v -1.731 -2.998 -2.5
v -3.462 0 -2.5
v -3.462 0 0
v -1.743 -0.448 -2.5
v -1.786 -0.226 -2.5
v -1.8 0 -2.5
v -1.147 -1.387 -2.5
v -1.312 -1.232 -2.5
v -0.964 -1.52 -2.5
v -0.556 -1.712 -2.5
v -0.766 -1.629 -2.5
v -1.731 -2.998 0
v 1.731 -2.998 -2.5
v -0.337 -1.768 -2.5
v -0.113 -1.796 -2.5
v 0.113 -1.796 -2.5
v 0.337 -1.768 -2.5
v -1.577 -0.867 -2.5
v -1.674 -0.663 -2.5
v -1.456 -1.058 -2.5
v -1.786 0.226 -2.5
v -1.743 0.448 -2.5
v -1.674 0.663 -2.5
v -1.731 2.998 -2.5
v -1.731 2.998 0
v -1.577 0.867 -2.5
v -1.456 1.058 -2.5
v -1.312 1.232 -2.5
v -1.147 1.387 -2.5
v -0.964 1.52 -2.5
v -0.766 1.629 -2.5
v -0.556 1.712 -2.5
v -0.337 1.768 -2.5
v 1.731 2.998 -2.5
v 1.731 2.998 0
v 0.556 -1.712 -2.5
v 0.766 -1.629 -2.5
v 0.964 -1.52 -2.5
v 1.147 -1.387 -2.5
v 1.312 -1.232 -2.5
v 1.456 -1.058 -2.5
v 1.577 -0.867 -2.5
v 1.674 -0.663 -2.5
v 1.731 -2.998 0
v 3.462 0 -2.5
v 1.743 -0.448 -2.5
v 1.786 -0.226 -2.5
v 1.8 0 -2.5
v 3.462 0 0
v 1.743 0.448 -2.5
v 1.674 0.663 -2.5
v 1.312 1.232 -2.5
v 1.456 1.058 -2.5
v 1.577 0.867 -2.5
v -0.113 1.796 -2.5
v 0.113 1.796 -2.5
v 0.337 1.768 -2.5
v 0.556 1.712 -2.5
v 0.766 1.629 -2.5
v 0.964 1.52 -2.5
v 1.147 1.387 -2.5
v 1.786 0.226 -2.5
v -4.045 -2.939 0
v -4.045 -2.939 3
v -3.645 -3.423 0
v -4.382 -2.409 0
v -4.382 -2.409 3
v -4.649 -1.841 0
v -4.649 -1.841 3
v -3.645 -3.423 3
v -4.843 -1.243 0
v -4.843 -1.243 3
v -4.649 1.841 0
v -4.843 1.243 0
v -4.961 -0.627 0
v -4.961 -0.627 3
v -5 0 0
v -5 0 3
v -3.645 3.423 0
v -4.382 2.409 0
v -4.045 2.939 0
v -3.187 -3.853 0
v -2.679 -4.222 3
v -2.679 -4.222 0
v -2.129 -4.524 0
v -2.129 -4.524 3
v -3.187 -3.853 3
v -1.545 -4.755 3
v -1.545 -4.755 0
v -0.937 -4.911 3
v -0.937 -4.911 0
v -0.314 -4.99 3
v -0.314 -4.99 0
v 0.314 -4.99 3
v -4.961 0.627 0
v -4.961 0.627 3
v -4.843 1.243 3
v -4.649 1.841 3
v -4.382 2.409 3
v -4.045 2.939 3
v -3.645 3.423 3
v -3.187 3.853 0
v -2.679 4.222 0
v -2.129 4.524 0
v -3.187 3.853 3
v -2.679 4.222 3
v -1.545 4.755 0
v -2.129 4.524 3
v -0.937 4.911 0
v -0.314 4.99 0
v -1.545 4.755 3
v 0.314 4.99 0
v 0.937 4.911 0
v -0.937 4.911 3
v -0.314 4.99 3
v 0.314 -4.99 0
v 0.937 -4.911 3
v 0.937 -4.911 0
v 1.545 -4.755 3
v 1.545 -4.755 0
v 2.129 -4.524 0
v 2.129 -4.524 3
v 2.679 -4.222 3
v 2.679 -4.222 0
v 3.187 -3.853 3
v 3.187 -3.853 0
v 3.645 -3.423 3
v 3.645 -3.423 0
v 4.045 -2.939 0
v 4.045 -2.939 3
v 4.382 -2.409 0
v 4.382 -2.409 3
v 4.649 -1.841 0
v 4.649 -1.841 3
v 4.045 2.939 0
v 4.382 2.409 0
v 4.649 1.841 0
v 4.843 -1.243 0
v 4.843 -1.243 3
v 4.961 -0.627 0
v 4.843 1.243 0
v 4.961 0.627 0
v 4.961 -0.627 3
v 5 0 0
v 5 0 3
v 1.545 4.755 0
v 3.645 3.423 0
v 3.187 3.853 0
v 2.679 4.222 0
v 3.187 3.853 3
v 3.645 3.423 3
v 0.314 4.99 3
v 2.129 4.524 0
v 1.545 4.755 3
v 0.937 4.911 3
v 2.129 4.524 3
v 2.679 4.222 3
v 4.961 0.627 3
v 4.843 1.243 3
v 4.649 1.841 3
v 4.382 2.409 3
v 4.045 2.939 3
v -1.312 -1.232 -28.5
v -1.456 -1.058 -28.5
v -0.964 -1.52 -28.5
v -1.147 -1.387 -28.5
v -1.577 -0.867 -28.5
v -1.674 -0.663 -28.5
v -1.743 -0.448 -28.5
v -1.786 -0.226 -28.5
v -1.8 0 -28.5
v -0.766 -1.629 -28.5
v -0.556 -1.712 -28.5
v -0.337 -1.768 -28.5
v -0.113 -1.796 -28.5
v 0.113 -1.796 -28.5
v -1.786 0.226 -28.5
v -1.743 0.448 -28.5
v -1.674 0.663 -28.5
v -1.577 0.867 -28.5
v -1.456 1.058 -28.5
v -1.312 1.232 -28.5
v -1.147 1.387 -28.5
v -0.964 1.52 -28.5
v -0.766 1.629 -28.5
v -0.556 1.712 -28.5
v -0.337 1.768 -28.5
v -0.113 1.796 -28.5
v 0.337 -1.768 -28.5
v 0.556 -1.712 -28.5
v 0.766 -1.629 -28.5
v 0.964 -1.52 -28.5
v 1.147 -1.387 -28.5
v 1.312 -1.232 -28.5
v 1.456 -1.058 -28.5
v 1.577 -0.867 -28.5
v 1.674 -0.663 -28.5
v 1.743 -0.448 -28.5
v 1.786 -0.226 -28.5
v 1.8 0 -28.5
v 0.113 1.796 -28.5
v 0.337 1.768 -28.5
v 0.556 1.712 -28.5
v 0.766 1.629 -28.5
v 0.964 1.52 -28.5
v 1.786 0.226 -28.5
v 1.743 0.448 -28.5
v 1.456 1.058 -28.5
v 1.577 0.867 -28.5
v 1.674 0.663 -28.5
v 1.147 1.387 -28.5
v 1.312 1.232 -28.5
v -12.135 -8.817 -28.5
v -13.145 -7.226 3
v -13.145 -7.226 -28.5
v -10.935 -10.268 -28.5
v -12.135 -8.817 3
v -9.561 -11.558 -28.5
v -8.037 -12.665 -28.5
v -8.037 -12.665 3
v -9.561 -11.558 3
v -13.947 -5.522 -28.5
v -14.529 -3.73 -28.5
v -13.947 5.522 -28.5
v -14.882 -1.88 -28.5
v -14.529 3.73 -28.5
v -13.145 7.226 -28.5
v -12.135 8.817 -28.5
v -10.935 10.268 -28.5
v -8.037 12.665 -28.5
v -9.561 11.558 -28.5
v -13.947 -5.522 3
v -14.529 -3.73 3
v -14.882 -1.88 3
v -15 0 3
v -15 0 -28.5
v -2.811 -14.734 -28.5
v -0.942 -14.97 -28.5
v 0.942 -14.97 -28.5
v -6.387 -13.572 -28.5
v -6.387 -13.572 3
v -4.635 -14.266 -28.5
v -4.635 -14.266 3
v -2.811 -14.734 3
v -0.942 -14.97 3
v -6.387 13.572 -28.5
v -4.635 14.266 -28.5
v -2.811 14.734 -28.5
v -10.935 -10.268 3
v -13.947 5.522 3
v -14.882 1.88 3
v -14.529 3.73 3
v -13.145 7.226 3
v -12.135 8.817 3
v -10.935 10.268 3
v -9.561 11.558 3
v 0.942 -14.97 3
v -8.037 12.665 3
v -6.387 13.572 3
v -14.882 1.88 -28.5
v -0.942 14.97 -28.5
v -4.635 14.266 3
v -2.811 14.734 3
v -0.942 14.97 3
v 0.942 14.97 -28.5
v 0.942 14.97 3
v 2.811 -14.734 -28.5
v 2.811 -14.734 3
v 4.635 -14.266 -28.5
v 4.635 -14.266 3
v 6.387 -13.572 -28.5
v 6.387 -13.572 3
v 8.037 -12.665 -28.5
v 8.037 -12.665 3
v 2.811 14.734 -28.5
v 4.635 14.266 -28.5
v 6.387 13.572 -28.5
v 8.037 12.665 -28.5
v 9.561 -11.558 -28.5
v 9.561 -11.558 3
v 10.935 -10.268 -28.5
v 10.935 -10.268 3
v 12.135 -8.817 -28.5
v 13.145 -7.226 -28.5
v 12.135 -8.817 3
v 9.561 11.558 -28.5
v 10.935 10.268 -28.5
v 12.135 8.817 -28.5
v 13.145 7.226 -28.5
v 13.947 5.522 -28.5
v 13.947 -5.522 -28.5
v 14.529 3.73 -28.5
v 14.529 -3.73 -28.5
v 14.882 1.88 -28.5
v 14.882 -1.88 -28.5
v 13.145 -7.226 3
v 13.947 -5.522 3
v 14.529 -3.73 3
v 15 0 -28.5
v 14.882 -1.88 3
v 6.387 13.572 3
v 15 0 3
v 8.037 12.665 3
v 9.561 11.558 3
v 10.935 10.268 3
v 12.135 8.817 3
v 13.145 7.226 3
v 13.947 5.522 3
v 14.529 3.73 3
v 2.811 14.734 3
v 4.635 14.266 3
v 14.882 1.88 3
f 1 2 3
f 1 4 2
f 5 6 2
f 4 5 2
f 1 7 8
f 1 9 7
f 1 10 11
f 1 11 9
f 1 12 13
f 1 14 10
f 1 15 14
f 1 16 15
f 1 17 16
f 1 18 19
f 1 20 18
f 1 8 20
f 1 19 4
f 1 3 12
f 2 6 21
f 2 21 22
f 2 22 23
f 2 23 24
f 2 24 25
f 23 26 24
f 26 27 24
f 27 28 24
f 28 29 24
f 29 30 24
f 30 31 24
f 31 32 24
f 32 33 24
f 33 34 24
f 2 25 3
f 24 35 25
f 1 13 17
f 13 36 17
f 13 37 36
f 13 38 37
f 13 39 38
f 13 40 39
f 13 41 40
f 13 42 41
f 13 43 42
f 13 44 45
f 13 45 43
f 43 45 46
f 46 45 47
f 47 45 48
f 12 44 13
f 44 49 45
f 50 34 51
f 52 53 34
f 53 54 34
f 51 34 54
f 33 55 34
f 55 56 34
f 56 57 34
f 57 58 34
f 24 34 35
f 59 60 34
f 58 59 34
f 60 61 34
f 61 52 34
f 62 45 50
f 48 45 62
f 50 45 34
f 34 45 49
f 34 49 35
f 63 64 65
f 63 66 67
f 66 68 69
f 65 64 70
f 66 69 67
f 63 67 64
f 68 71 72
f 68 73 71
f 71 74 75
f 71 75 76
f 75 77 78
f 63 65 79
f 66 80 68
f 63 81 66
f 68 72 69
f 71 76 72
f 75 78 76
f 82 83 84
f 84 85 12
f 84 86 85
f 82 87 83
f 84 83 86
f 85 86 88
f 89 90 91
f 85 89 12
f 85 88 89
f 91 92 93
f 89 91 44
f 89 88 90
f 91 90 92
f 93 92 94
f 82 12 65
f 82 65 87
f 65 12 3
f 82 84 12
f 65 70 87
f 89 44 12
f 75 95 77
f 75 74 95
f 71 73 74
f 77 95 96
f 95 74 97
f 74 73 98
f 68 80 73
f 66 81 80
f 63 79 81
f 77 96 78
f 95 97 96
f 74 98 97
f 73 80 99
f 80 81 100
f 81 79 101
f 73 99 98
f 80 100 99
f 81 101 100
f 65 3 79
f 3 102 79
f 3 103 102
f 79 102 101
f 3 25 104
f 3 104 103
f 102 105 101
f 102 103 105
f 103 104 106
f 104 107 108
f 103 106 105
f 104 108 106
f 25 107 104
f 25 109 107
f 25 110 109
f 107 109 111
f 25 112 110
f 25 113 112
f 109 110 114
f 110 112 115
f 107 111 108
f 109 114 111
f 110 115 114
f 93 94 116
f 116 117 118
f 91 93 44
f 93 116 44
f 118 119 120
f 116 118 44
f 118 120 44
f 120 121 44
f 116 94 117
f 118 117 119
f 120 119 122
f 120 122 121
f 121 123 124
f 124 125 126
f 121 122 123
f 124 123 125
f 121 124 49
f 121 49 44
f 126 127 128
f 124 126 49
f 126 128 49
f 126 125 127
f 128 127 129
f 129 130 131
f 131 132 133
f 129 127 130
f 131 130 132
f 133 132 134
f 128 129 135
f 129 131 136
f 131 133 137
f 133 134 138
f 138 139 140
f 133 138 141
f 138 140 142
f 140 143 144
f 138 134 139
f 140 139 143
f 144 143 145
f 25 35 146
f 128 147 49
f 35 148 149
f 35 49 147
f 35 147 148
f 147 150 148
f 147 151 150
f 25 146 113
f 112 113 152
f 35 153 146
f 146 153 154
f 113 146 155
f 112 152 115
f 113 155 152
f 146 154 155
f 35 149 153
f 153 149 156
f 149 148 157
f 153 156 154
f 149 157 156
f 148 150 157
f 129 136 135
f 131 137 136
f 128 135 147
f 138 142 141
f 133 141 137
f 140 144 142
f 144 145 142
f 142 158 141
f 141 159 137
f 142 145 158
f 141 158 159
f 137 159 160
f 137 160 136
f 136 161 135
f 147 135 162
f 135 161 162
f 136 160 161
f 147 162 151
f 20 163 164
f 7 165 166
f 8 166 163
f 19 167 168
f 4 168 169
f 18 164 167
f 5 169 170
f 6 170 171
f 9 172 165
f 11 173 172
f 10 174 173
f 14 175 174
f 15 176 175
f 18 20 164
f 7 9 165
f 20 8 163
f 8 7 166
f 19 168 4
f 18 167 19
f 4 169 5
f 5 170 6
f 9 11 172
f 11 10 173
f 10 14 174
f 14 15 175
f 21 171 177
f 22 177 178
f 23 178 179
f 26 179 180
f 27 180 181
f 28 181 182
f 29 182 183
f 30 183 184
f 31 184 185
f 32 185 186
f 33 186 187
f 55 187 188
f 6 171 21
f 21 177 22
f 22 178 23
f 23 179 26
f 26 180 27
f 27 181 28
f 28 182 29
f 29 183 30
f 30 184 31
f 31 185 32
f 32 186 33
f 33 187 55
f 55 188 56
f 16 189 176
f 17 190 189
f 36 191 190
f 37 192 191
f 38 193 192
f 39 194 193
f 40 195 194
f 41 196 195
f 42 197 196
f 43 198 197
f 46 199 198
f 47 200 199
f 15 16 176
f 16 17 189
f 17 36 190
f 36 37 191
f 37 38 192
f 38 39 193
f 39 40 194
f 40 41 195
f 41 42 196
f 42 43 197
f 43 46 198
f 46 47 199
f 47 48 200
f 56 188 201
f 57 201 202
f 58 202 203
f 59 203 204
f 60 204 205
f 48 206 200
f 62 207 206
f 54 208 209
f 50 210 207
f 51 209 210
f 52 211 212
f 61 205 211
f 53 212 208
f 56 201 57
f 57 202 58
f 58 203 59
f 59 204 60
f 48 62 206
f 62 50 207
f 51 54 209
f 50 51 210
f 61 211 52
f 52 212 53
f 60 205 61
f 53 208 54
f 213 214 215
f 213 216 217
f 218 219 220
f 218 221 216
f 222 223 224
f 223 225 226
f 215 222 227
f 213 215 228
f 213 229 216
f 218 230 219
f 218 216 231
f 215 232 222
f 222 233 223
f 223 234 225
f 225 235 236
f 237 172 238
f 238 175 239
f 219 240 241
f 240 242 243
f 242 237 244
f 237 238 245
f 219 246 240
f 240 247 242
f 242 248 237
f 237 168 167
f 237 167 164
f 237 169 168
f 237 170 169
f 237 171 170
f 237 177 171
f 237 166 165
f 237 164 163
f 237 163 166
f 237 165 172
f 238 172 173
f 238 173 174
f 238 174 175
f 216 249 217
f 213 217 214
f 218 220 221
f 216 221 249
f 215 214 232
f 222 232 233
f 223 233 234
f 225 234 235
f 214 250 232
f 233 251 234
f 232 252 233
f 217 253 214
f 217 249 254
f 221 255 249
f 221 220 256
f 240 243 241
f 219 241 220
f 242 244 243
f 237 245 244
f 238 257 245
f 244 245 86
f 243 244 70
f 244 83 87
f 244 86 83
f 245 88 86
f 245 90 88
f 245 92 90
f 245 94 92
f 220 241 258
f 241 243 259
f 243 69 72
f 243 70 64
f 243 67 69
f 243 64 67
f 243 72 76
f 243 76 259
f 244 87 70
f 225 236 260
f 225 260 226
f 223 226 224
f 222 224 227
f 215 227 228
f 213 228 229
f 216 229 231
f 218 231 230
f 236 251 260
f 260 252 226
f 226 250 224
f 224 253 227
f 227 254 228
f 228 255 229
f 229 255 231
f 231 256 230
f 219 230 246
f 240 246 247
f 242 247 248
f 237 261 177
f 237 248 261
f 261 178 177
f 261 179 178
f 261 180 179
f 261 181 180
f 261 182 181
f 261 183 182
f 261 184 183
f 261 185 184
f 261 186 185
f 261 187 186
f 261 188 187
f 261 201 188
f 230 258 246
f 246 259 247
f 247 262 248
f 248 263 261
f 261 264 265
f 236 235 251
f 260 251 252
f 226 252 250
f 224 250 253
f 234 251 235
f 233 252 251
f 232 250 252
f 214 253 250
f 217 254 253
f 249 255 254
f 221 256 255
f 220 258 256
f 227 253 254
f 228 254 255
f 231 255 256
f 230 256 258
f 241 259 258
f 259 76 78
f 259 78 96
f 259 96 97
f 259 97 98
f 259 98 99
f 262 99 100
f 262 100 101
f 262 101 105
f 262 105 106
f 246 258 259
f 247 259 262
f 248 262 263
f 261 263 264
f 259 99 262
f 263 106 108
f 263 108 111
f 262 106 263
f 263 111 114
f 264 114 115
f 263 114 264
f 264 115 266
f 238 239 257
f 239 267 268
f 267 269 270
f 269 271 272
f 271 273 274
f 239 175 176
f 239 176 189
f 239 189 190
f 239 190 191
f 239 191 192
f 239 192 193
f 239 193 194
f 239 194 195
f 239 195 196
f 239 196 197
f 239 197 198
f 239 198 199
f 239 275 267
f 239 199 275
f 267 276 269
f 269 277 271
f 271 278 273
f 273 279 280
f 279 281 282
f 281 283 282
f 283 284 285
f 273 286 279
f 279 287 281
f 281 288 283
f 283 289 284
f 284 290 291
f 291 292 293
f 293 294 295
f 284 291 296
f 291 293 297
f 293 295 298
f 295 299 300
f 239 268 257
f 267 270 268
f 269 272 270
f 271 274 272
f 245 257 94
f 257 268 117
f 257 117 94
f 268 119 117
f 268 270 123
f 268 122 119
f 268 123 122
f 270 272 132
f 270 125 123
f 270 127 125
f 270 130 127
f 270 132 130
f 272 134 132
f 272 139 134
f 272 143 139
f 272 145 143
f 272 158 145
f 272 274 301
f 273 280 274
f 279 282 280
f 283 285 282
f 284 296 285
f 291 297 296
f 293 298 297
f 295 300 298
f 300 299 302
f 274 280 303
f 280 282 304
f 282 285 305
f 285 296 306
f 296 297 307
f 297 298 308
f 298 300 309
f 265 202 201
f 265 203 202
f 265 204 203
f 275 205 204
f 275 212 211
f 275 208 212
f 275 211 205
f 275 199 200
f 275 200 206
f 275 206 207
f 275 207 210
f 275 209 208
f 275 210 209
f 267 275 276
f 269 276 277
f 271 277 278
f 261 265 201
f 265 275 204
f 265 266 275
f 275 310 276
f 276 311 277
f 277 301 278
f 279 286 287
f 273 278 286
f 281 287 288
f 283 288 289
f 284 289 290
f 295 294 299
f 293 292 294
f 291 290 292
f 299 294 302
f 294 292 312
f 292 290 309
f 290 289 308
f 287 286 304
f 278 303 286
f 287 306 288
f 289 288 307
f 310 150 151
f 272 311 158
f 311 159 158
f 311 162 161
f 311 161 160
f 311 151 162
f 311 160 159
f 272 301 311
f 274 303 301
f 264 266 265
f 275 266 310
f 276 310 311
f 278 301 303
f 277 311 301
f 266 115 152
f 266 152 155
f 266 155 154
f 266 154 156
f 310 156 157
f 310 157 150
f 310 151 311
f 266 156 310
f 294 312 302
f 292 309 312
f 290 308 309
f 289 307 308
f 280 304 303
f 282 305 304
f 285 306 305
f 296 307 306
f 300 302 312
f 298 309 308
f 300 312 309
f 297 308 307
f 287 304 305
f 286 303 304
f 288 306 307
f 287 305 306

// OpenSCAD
$fn = 50;

difference() {
	union() {
		translate(v = [0, 0, -28.5]) {
			cylinder(h = 31.5, r = 15.0);
		}
	}
	union() {
		translate(v = [0, 0, 0]) {
			rotate(a = [0, 0, 0]) {
				difference() {
					union() {
						translate(v = [0, 0, -2.5]) {
							linear_extrude(height = 2.5) {
								polygon(points = [[3.4619999999999997, 0.0], [1.7310000000000003, 2.9981799479017264], [-1.7309999999999992, 2.9981799479017264], [-3.4619999999999997, 4.2397272186481365e-16], [-1.7310000000000014, -2.998179947901726], [1.7309999999999977, -2.9981799479017277]]);
							}
						}
					}
					union();
				}
			}
		}
		#cylinder(h = 3, r = 5.0);
		#translate(v = [0, 0, -100.0]) {
			cylinder(h = 200, r = 1.8);
		}
	}
}
